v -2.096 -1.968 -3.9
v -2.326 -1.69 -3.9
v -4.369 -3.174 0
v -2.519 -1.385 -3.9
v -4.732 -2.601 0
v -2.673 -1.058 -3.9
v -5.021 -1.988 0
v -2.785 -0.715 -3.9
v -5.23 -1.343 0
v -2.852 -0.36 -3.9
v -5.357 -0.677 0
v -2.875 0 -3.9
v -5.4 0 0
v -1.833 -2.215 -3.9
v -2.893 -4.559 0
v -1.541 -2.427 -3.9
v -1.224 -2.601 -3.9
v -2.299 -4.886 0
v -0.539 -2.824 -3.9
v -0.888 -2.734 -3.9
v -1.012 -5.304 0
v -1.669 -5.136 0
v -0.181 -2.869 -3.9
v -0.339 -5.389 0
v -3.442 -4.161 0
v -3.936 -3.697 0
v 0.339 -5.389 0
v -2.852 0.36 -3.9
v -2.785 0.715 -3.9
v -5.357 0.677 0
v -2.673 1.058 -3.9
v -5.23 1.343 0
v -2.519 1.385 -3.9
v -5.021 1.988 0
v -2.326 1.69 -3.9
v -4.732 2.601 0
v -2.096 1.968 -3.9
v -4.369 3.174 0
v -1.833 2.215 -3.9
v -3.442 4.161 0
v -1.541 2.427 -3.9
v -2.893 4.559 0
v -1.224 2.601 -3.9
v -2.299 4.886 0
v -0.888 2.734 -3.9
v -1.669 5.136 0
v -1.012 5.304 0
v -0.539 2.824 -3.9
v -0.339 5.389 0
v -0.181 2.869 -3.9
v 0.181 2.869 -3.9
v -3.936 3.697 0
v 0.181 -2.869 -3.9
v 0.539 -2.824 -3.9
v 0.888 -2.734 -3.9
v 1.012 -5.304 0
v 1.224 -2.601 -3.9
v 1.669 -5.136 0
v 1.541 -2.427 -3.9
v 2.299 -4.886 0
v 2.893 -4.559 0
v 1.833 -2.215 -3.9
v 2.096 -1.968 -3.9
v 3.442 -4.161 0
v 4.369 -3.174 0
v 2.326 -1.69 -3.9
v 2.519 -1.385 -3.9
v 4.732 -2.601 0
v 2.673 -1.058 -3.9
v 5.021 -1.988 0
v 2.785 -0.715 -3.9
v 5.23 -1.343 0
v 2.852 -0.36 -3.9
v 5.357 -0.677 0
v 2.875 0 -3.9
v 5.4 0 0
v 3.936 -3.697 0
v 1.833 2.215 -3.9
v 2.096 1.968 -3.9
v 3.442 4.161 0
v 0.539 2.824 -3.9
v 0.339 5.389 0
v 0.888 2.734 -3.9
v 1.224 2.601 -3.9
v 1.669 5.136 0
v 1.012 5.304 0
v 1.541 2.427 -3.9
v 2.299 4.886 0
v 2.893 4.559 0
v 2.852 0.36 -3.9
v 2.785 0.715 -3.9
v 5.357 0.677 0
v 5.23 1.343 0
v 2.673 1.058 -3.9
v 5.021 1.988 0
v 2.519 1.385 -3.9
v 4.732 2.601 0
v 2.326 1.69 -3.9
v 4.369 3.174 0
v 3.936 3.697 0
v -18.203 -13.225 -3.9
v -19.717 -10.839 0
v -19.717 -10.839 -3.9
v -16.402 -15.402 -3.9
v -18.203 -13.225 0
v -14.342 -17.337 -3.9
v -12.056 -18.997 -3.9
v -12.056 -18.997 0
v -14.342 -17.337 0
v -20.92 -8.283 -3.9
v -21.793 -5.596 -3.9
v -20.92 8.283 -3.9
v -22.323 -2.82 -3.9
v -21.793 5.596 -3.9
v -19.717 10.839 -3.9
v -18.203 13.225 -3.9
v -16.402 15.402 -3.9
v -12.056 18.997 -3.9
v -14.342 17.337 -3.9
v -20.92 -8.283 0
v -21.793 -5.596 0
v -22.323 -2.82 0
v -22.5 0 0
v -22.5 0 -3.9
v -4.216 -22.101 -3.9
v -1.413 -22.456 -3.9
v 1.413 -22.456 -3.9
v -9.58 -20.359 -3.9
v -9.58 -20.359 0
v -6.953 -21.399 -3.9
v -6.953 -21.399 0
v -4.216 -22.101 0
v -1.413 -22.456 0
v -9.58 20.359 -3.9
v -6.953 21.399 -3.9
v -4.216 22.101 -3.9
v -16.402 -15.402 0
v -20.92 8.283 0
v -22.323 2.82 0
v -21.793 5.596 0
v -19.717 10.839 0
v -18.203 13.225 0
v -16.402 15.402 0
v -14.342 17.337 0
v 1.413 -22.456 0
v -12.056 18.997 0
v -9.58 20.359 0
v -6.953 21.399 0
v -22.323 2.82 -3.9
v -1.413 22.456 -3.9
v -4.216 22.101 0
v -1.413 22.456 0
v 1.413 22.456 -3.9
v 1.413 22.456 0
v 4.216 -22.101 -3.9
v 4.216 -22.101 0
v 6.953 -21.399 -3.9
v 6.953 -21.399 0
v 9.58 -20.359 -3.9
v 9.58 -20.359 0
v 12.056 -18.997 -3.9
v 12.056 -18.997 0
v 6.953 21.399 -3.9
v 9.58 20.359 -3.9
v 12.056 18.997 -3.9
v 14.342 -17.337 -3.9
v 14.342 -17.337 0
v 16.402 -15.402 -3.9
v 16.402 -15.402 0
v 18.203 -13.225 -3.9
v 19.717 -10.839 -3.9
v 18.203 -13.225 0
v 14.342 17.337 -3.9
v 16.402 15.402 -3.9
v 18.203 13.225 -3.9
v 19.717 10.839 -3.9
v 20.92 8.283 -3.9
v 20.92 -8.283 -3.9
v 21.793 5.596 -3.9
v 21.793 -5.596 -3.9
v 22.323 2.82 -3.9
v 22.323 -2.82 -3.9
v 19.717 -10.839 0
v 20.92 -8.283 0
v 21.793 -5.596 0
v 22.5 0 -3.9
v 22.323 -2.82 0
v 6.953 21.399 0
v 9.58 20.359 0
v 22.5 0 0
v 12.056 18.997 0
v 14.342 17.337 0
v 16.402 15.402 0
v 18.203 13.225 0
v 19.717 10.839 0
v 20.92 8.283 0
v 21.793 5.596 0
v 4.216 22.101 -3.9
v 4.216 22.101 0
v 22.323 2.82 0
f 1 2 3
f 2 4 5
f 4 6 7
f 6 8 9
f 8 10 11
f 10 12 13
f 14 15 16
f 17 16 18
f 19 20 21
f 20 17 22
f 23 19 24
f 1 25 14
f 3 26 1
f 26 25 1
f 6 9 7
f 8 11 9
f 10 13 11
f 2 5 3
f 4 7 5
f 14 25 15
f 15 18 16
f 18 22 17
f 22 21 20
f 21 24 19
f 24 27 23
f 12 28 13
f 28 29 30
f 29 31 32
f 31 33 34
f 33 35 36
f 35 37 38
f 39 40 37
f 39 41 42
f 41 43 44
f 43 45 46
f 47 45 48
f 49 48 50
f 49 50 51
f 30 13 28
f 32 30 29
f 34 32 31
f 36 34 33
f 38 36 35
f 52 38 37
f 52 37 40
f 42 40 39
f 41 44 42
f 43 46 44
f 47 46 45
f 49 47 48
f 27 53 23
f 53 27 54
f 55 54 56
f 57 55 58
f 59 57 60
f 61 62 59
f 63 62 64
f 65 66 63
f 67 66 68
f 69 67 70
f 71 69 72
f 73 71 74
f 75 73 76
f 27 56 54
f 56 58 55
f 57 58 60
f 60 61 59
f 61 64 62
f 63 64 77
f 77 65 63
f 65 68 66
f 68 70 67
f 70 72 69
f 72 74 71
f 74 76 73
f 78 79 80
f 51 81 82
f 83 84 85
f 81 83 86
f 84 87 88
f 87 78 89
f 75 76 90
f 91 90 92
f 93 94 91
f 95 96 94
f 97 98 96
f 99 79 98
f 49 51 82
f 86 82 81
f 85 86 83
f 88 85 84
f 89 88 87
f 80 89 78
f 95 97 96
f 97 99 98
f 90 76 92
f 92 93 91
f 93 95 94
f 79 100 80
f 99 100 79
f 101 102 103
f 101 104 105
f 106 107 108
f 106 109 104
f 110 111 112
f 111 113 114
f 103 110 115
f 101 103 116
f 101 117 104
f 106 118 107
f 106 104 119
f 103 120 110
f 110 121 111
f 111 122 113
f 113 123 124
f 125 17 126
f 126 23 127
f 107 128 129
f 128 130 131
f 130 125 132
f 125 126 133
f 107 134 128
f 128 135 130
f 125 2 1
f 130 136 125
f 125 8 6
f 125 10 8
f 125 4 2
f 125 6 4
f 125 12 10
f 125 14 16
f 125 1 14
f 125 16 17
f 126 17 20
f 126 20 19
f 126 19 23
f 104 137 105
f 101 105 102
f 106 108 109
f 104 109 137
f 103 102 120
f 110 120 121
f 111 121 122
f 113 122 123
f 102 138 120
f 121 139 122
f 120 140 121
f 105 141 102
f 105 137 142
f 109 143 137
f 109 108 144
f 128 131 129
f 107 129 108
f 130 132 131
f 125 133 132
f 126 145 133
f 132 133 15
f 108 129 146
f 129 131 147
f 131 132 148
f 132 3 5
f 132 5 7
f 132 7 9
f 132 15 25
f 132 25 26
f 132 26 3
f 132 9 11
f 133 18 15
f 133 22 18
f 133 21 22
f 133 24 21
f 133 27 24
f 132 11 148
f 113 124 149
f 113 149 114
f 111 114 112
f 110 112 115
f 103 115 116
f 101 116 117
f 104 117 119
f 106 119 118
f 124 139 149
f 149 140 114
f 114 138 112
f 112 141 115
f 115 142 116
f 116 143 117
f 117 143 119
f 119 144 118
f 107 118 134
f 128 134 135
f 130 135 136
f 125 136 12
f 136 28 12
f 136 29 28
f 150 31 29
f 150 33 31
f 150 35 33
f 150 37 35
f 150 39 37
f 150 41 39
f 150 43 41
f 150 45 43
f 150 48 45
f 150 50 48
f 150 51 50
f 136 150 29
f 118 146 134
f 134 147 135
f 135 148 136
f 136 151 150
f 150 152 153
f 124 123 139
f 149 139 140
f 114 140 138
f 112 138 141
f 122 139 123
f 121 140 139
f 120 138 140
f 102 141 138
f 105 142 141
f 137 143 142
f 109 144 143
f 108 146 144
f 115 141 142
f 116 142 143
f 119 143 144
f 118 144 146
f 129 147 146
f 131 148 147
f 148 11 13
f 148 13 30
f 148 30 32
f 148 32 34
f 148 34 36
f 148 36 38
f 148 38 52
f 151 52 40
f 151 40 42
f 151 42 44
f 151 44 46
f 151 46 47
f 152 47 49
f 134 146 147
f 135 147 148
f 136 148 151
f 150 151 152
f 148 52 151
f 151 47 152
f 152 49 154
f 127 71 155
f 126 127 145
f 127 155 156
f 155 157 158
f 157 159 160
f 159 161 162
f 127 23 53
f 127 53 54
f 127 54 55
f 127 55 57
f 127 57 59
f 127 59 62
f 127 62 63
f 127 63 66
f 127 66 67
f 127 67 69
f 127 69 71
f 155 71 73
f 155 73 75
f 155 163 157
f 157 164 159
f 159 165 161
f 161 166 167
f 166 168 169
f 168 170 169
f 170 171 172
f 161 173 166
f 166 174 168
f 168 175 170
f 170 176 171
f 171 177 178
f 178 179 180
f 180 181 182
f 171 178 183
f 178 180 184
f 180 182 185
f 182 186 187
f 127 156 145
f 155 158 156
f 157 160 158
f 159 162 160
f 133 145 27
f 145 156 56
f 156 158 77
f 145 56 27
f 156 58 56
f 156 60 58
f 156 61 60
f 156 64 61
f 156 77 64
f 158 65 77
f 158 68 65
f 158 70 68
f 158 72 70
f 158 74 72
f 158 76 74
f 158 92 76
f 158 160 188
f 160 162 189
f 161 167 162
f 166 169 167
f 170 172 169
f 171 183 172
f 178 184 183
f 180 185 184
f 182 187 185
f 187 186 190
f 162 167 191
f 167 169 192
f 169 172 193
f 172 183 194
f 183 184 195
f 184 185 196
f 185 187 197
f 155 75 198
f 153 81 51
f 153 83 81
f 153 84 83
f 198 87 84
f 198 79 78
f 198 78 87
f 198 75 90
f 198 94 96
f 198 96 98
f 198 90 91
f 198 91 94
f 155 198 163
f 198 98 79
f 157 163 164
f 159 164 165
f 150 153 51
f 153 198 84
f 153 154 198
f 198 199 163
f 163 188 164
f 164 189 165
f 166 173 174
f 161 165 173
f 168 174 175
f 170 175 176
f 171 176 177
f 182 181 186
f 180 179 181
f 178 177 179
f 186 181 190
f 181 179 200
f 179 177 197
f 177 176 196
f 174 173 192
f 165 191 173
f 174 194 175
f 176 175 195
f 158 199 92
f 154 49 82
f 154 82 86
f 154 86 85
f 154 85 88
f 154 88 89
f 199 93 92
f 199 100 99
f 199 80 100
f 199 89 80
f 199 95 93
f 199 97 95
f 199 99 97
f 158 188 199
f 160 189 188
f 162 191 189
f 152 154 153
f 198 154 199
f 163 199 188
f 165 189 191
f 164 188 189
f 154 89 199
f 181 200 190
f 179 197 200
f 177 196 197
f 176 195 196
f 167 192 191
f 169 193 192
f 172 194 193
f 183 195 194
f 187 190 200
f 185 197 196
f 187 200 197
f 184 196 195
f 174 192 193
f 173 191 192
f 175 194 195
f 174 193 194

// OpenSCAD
$fn = 50;

difference() {
	union() {
		translate(v = [0, 0, -3.9]) {
			cylinder(h = 3.9, r = 22.5);
		}
	}
	union() {
		translate(v = [0, 0, 0]) {
			rotate(a = [0, 0, 0]) {
				difference() {
					union() {
						translate(v = [0, 0, -6.9]) {
							cylinder(h = 6.9, r = 2.6);
						}
						translate(v = [0, 0, -3.9]) {
							cylinder(h = 3.9, r1 = 2.875, r2 = 5.4);
						}
						translate(v = [0, 0, -6.9]) {
							cylinder(h = 6.9, r = 2.875);
						}
						translate(v = [0, 0, -6.9]) {
							cylinder(h = 6.9, r = 2.6);
						}
					}
					union();
				}
			}
		}
	}
}
